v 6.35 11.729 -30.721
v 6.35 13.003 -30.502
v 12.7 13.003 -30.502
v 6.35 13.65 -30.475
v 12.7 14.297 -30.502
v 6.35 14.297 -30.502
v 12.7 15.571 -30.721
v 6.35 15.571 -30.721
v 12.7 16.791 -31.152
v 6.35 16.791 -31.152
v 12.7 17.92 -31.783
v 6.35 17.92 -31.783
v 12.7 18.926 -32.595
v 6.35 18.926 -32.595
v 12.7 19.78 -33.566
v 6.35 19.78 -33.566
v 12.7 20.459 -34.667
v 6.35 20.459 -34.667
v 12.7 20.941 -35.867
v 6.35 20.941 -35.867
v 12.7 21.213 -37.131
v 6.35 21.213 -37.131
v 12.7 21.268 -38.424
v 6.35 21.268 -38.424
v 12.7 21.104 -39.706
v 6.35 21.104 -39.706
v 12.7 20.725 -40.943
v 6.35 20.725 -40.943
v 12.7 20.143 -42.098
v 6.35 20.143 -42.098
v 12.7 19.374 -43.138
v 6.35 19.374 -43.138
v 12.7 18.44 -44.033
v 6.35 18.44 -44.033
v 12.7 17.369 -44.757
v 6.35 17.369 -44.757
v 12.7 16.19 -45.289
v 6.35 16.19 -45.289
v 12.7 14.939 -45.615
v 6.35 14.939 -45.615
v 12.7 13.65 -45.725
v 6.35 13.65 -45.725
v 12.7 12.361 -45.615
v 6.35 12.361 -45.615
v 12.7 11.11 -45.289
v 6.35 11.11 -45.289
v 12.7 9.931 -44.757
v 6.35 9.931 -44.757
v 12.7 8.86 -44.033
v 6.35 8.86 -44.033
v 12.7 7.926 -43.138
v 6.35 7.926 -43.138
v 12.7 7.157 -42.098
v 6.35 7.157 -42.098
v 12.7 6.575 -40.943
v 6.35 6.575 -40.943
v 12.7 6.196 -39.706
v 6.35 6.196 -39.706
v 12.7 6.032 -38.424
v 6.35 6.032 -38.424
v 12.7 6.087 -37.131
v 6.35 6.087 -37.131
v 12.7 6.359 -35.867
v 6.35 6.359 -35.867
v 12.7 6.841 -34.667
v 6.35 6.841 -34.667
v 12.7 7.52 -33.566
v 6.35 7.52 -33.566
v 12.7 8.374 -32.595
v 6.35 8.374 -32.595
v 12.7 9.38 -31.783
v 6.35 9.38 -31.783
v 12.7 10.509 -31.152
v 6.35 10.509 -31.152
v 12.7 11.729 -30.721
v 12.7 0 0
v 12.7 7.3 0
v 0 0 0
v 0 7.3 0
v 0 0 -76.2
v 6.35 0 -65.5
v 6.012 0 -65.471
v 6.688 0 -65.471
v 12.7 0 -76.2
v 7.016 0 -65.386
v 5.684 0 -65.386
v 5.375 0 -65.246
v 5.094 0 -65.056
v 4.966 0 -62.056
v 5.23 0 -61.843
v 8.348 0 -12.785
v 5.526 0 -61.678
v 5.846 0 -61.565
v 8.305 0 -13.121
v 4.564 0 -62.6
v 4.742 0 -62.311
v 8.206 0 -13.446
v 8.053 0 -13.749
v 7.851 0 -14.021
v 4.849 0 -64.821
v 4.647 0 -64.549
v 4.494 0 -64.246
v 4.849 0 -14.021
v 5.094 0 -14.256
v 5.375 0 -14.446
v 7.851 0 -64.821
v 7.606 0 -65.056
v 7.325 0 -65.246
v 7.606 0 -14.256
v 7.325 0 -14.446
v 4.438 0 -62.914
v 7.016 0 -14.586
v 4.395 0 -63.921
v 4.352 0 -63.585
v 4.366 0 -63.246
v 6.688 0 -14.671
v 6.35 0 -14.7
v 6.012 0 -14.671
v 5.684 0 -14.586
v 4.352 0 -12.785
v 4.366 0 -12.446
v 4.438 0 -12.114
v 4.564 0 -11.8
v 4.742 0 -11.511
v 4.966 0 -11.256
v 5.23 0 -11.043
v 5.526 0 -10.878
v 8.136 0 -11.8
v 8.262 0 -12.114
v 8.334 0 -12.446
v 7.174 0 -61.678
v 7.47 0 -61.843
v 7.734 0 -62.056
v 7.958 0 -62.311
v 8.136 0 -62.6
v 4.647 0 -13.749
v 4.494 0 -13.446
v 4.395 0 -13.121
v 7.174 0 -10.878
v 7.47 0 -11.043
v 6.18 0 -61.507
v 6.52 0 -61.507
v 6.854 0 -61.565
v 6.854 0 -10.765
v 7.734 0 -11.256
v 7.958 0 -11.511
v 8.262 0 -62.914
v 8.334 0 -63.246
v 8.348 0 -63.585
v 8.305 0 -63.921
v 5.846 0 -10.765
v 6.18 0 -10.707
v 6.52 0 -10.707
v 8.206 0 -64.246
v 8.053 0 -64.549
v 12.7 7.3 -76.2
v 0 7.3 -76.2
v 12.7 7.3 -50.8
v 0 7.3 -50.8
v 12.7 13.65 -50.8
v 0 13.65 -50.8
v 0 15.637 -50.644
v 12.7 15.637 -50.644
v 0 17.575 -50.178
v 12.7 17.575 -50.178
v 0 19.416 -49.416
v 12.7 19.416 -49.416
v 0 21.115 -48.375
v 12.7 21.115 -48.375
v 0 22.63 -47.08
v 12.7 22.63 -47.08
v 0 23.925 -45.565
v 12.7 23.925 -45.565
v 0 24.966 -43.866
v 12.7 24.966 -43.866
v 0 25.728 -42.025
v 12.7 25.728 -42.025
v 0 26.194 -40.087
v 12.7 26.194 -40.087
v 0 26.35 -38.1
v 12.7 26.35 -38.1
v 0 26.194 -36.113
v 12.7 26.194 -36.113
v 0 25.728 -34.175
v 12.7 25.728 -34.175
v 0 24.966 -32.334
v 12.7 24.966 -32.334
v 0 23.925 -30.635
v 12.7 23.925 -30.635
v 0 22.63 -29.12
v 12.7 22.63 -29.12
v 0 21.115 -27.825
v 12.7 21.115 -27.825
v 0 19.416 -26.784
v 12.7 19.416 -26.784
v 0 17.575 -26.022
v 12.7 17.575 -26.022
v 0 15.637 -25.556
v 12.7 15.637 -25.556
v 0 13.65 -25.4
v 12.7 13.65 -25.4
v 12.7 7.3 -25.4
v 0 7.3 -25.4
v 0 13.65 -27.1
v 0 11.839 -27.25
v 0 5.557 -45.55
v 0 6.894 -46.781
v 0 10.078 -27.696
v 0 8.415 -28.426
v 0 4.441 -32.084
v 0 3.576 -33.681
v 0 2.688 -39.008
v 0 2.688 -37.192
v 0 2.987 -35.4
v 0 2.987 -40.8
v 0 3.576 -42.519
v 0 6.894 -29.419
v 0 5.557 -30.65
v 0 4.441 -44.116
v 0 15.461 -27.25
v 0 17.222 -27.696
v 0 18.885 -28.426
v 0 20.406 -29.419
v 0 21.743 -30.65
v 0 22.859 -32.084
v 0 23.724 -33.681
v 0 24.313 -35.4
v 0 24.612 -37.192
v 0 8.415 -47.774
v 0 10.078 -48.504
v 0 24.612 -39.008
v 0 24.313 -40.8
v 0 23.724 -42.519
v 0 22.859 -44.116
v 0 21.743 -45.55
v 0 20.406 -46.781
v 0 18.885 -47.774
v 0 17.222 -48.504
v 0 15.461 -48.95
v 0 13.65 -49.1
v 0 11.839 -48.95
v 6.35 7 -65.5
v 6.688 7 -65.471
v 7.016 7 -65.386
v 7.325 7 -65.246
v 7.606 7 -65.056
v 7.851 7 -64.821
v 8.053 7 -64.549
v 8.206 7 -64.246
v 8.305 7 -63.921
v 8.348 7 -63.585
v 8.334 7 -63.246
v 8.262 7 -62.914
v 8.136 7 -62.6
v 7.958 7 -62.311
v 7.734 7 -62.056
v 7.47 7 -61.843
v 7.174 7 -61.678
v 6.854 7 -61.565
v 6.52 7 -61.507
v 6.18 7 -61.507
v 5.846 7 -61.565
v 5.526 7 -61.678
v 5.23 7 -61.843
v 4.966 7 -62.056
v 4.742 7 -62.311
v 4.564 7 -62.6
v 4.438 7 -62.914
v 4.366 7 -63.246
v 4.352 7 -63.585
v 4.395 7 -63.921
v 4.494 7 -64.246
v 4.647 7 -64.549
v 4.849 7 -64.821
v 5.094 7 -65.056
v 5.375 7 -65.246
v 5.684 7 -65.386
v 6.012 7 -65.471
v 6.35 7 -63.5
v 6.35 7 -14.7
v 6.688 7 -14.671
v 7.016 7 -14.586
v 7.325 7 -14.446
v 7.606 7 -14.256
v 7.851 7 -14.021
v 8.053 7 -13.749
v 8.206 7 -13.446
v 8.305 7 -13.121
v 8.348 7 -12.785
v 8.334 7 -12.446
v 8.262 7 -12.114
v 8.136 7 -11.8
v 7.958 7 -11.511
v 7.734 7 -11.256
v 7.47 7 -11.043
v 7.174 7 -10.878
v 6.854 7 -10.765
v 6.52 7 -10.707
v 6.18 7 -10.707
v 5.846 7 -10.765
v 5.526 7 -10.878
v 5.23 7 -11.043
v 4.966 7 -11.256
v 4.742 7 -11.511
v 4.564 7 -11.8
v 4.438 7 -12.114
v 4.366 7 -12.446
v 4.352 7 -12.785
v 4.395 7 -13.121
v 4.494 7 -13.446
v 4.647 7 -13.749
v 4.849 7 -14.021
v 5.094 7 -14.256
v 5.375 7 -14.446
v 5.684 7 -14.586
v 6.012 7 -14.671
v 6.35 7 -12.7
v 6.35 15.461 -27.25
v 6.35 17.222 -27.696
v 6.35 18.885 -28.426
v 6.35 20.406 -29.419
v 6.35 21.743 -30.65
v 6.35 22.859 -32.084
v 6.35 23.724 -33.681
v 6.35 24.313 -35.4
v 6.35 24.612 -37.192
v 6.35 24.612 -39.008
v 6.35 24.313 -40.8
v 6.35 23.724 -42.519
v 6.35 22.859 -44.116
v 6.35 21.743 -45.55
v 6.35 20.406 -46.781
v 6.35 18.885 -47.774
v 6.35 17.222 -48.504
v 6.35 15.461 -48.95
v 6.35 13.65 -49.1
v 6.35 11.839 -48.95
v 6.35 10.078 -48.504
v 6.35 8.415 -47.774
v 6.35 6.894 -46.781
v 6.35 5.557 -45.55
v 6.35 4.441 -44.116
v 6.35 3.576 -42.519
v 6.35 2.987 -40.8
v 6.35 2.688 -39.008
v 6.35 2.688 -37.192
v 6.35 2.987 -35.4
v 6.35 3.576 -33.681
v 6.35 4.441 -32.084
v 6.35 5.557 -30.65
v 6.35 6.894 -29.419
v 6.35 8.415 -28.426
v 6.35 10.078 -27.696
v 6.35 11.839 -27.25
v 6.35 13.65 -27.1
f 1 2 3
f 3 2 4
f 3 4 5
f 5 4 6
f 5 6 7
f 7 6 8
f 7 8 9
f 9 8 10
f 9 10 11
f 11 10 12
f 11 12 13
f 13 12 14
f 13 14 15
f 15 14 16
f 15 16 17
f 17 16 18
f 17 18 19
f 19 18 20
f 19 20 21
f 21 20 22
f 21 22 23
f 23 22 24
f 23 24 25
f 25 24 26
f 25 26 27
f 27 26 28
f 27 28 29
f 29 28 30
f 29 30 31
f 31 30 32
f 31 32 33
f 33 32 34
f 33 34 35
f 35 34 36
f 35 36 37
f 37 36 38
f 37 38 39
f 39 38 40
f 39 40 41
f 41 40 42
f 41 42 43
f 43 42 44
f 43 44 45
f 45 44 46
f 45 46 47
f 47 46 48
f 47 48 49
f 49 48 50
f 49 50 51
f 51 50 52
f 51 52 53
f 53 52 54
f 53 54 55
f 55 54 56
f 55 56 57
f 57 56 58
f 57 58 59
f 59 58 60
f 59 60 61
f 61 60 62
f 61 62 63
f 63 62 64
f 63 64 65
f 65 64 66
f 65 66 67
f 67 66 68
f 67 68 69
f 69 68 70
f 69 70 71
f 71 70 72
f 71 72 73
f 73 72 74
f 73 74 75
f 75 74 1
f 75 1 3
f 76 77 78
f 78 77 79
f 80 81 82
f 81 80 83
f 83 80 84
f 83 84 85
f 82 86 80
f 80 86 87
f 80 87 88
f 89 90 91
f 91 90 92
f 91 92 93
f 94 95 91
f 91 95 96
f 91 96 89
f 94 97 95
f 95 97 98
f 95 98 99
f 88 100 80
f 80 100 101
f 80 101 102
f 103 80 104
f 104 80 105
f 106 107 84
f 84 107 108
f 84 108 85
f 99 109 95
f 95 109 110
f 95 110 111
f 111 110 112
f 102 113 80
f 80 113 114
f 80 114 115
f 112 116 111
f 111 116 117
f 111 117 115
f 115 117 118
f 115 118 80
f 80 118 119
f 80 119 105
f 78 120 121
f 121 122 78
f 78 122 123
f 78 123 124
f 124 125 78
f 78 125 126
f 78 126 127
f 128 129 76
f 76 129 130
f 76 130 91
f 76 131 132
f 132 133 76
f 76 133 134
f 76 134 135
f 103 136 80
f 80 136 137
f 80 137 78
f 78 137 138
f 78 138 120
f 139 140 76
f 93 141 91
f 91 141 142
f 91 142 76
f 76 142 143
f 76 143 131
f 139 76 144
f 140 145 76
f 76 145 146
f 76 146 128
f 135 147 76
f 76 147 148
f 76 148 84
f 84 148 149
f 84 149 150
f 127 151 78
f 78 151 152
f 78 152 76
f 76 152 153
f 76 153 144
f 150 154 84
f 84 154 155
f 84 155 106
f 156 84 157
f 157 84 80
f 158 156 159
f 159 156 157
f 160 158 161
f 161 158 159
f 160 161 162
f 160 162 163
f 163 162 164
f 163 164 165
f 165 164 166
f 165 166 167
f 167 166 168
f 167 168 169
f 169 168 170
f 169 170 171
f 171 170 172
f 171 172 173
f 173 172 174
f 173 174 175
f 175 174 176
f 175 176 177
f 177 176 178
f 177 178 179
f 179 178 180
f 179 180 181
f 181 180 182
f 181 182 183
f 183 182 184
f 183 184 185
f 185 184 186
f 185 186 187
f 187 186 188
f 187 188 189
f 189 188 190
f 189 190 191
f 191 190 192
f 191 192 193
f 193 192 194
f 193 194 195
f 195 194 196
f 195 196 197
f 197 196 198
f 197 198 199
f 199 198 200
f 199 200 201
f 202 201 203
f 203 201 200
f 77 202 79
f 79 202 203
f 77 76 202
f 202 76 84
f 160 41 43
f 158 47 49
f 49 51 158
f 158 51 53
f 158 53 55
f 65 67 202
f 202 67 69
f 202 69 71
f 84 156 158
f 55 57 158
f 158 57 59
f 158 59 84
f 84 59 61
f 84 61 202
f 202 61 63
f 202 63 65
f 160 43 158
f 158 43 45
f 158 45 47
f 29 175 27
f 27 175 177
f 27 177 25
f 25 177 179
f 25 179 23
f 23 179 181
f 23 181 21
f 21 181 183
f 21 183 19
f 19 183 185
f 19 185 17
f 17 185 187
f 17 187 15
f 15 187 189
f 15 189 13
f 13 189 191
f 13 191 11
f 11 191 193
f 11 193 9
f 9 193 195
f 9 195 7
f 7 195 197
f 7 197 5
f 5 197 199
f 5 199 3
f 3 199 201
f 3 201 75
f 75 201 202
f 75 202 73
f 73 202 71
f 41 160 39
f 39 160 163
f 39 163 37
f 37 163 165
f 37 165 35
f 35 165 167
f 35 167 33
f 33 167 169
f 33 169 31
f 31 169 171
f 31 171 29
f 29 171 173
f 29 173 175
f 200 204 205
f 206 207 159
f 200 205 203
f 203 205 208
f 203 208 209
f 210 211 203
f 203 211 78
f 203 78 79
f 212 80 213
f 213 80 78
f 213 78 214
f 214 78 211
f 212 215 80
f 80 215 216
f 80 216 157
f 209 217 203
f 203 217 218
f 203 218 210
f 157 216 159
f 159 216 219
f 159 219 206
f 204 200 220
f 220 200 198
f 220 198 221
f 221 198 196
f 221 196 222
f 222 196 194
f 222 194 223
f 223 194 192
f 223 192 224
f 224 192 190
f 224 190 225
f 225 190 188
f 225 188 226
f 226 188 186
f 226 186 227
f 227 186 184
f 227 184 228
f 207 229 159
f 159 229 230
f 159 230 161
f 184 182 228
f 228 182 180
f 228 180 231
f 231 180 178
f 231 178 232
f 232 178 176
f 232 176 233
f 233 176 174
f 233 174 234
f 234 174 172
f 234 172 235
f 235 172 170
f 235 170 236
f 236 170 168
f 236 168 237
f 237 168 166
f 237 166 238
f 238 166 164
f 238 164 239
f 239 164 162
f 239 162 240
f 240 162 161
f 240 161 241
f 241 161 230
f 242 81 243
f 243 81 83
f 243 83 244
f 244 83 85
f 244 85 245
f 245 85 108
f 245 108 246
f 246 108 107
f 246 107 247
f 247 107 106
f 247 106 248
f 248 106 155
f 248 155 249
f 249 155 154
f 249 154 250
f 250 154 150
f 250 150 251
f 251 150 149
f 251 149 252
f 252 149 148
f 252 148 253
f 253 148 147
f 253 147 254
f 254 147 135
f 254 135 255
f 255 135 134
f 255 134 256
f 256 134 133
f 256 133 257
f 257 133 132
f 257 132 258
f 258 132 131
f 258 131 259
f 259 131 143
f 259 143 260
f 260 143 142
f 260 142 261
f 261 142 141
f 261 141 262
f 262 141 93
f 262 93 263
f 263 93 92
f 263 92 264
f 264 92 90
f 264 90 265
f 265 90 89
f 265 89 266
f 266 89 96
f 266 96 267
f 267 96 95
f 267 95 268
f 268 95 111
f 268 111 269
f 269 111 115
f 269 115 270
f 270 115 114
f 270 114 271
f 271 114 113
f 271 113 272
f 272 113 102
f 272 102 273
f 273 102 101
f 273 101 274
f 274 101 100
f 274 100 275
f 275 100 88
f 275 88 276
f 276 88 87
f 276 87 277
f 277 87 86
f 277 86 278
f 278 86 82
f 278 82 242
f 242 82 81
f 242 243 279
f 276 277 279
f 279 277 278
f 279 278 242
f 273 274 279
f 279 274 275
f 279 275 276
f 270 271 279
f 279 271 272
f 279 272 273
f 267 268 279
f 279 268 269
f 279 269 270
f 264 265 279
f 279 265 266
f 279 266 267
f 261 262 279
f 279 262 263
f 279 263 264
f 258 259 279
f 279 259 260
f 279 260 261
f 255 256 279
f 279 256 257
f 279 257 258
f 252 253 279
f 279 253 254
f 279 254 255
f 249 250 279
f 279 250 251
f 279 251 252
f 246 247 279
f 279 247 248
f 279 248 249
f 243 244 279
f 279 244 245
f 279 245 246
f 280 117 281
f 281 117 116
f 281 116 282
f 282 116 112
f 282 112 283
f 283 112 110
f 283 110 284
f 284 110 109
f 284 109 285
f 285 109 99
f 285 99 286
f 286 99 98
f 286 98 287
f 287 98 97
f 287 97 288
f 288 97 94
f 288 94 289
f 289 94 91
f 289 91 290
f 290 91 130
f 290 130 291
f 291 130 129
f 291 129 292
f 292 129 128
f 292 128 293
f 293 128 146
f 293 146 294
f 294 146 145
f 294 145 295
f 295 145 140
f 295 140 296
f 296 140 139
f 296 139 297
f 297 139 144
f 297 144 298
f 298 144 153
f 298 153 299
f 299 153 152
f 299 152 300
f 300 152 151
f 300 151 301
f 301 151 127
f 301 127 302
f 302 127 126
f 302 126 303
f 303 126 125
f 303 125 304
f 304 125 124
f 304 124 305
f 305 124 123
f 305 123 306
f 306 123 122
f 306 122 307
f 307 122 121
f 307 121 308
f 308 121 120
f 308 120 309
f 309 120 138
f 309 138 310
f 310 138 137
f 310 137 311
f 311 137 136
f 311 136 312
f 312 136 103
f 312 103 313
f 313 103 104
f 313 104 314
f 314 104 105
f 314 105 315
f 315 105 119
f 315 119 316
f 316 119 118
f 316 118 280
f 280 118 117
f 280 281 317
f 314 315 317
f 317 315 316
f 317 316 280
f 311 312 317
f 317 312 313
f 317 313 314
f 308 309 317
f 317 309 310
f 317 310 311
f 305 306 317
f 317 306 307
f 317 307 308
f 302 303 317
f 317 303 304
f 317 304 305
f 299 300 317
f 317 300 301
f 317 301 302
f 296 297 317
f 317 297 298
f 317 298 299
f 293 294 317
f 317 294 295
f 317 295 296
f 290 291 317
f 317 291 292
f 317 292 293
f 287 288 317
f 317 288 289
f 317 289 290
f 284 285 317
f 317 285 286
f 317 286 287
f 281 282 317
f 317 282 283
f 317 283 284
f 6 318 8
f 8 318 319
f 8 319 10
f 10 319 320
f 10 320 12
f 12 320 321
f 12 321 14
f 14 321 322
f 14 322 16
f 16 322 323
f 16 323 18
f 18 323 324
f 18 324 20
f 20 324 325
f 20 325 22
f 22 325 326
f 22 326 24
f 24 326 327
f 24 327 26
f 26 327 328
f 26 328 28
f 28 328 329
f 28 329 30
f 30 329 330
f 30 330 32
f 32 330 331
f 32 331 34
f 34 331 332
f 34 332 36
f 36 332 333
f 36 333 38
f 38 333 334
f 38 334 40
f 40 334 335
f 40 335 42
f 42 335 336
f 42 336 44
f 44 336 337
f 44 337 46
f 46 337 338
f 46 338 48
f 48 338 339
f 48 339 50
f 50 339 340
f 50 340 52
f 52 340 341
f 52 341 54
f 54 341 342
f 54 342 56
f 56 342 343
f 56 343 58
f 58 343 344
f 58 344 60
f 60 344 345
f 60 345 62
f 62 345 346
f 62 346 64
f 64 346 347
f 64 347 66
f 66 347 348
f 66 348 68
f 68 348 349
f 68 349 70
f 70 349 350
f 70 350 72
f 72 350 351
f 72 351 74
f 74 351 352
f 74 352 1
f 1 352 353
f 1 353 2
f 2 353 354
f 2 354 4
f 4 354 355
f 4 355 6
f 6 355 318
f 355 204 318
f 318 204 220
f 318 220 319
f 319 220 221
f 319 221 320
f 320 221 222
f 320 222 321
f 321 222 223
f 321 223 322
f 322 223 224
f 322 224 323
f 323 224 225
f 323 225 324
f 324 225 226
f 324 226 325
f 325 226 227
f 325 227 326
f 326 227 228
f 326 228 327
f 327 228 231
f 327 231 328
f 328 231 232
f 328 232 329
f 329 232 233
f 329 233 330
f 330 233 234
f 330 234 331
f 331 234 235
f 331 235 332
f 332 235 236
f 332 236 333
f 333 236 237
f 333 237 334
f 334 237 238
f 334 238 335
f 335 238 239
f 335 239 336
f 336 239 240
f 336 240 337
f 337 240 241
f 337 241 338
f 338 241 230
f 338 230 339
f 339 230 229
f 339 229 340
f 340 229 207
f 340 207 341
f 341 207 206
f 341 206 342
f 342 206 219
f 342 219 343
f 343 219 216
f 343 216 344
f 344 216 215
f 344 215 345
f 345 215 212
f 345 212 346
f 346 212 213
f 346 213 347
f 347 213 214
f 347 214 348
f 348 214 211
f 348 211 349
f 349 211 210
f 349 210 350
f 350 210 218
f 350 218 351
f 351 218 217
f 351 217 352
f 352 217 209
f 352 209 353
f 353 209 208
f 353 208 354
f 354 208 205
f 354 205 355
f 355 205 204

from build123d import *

# Parameters (mm, degrees)
BOSS_EXTRUDE1_DEPTH = 12.7
SKETCH2_R           = 7.62500004
CUT_EXTRUDE1_DEPTH  = 82.621397317
SKETCH3_R           = 2
CUT_EXTRUDE2_DEPTH  = 7
SKETCH4_R           = 11
CUT_EXTRUDE3_DEPTH  = 6.35


with BuildPart() as part:
    # Sketch1 → Boss-Extrude1 (new body)
    with BuildSketch(Plane(origin=(0, 0, 0), x_dir=(0, 0, -1), z_dir=(1, 0, 0))):
        with BuildLine():
            Line((0, 0), (76.2, 0))
            Line((76.2, 0), (76.2, 7.3))
            Line((76.2, 7.3), (50.8, 7.3))
            Line((50.8, 7.3), (50.8, 13.65))
            ThreePointArc((50.8, 13.65), (38.1, 26.35), (25.4, 13.65))
            Line((25.4, 13.65), (25.4, 7.3))
            Line((25.4, 7.3), (0, 7.3))
            Line((0, 7.3), (0, 0))
        make_face()
    extrude(amount=BOSS_EXTRUDE1_DEPTH)

    # Sketch2 → Cut-Extrude1 (cut, through all)
    with BuildSketch(Plane(origin=(12.7, 0, 0), x_dir=(0, 0, -1), z_dir=(1, 0, 0))):
        with Locations((38.1, 13.65)):
            Circle(SKETCH2_R)
    extrude(amount=-CUT_EXTRUDE1_DEPTH, mode=Mode.SUBTRACT)

    # Sketch3 → Cut-Extrude2 (cut)
    with BuildSketch(Plane.XZ):
        with Locations(Location((6.35, -12.7, 0), (0, 0, 270))):
            Circle(SKETCH3_R)
        with Locations(Location((6.35, -63.5, 0), (0, 0, 270))):
            Circle(SKETCH3_R)
    extrude(amount=-CUT_EXTRUDE2_DEPTH, mode=Mode.SUBTRACT)

    # Sketch4 → Cut-Extrude3 (cut)
    with BuildSketch(Plane.ZY):
        with Locations((-38.1, 13.65)):
            Circle(SKETCH4_R)
    extrude(amount=-CUT_EXTRUDE3_DEPTH, mode=Mode.SUBTRACT)


solid = part.part
